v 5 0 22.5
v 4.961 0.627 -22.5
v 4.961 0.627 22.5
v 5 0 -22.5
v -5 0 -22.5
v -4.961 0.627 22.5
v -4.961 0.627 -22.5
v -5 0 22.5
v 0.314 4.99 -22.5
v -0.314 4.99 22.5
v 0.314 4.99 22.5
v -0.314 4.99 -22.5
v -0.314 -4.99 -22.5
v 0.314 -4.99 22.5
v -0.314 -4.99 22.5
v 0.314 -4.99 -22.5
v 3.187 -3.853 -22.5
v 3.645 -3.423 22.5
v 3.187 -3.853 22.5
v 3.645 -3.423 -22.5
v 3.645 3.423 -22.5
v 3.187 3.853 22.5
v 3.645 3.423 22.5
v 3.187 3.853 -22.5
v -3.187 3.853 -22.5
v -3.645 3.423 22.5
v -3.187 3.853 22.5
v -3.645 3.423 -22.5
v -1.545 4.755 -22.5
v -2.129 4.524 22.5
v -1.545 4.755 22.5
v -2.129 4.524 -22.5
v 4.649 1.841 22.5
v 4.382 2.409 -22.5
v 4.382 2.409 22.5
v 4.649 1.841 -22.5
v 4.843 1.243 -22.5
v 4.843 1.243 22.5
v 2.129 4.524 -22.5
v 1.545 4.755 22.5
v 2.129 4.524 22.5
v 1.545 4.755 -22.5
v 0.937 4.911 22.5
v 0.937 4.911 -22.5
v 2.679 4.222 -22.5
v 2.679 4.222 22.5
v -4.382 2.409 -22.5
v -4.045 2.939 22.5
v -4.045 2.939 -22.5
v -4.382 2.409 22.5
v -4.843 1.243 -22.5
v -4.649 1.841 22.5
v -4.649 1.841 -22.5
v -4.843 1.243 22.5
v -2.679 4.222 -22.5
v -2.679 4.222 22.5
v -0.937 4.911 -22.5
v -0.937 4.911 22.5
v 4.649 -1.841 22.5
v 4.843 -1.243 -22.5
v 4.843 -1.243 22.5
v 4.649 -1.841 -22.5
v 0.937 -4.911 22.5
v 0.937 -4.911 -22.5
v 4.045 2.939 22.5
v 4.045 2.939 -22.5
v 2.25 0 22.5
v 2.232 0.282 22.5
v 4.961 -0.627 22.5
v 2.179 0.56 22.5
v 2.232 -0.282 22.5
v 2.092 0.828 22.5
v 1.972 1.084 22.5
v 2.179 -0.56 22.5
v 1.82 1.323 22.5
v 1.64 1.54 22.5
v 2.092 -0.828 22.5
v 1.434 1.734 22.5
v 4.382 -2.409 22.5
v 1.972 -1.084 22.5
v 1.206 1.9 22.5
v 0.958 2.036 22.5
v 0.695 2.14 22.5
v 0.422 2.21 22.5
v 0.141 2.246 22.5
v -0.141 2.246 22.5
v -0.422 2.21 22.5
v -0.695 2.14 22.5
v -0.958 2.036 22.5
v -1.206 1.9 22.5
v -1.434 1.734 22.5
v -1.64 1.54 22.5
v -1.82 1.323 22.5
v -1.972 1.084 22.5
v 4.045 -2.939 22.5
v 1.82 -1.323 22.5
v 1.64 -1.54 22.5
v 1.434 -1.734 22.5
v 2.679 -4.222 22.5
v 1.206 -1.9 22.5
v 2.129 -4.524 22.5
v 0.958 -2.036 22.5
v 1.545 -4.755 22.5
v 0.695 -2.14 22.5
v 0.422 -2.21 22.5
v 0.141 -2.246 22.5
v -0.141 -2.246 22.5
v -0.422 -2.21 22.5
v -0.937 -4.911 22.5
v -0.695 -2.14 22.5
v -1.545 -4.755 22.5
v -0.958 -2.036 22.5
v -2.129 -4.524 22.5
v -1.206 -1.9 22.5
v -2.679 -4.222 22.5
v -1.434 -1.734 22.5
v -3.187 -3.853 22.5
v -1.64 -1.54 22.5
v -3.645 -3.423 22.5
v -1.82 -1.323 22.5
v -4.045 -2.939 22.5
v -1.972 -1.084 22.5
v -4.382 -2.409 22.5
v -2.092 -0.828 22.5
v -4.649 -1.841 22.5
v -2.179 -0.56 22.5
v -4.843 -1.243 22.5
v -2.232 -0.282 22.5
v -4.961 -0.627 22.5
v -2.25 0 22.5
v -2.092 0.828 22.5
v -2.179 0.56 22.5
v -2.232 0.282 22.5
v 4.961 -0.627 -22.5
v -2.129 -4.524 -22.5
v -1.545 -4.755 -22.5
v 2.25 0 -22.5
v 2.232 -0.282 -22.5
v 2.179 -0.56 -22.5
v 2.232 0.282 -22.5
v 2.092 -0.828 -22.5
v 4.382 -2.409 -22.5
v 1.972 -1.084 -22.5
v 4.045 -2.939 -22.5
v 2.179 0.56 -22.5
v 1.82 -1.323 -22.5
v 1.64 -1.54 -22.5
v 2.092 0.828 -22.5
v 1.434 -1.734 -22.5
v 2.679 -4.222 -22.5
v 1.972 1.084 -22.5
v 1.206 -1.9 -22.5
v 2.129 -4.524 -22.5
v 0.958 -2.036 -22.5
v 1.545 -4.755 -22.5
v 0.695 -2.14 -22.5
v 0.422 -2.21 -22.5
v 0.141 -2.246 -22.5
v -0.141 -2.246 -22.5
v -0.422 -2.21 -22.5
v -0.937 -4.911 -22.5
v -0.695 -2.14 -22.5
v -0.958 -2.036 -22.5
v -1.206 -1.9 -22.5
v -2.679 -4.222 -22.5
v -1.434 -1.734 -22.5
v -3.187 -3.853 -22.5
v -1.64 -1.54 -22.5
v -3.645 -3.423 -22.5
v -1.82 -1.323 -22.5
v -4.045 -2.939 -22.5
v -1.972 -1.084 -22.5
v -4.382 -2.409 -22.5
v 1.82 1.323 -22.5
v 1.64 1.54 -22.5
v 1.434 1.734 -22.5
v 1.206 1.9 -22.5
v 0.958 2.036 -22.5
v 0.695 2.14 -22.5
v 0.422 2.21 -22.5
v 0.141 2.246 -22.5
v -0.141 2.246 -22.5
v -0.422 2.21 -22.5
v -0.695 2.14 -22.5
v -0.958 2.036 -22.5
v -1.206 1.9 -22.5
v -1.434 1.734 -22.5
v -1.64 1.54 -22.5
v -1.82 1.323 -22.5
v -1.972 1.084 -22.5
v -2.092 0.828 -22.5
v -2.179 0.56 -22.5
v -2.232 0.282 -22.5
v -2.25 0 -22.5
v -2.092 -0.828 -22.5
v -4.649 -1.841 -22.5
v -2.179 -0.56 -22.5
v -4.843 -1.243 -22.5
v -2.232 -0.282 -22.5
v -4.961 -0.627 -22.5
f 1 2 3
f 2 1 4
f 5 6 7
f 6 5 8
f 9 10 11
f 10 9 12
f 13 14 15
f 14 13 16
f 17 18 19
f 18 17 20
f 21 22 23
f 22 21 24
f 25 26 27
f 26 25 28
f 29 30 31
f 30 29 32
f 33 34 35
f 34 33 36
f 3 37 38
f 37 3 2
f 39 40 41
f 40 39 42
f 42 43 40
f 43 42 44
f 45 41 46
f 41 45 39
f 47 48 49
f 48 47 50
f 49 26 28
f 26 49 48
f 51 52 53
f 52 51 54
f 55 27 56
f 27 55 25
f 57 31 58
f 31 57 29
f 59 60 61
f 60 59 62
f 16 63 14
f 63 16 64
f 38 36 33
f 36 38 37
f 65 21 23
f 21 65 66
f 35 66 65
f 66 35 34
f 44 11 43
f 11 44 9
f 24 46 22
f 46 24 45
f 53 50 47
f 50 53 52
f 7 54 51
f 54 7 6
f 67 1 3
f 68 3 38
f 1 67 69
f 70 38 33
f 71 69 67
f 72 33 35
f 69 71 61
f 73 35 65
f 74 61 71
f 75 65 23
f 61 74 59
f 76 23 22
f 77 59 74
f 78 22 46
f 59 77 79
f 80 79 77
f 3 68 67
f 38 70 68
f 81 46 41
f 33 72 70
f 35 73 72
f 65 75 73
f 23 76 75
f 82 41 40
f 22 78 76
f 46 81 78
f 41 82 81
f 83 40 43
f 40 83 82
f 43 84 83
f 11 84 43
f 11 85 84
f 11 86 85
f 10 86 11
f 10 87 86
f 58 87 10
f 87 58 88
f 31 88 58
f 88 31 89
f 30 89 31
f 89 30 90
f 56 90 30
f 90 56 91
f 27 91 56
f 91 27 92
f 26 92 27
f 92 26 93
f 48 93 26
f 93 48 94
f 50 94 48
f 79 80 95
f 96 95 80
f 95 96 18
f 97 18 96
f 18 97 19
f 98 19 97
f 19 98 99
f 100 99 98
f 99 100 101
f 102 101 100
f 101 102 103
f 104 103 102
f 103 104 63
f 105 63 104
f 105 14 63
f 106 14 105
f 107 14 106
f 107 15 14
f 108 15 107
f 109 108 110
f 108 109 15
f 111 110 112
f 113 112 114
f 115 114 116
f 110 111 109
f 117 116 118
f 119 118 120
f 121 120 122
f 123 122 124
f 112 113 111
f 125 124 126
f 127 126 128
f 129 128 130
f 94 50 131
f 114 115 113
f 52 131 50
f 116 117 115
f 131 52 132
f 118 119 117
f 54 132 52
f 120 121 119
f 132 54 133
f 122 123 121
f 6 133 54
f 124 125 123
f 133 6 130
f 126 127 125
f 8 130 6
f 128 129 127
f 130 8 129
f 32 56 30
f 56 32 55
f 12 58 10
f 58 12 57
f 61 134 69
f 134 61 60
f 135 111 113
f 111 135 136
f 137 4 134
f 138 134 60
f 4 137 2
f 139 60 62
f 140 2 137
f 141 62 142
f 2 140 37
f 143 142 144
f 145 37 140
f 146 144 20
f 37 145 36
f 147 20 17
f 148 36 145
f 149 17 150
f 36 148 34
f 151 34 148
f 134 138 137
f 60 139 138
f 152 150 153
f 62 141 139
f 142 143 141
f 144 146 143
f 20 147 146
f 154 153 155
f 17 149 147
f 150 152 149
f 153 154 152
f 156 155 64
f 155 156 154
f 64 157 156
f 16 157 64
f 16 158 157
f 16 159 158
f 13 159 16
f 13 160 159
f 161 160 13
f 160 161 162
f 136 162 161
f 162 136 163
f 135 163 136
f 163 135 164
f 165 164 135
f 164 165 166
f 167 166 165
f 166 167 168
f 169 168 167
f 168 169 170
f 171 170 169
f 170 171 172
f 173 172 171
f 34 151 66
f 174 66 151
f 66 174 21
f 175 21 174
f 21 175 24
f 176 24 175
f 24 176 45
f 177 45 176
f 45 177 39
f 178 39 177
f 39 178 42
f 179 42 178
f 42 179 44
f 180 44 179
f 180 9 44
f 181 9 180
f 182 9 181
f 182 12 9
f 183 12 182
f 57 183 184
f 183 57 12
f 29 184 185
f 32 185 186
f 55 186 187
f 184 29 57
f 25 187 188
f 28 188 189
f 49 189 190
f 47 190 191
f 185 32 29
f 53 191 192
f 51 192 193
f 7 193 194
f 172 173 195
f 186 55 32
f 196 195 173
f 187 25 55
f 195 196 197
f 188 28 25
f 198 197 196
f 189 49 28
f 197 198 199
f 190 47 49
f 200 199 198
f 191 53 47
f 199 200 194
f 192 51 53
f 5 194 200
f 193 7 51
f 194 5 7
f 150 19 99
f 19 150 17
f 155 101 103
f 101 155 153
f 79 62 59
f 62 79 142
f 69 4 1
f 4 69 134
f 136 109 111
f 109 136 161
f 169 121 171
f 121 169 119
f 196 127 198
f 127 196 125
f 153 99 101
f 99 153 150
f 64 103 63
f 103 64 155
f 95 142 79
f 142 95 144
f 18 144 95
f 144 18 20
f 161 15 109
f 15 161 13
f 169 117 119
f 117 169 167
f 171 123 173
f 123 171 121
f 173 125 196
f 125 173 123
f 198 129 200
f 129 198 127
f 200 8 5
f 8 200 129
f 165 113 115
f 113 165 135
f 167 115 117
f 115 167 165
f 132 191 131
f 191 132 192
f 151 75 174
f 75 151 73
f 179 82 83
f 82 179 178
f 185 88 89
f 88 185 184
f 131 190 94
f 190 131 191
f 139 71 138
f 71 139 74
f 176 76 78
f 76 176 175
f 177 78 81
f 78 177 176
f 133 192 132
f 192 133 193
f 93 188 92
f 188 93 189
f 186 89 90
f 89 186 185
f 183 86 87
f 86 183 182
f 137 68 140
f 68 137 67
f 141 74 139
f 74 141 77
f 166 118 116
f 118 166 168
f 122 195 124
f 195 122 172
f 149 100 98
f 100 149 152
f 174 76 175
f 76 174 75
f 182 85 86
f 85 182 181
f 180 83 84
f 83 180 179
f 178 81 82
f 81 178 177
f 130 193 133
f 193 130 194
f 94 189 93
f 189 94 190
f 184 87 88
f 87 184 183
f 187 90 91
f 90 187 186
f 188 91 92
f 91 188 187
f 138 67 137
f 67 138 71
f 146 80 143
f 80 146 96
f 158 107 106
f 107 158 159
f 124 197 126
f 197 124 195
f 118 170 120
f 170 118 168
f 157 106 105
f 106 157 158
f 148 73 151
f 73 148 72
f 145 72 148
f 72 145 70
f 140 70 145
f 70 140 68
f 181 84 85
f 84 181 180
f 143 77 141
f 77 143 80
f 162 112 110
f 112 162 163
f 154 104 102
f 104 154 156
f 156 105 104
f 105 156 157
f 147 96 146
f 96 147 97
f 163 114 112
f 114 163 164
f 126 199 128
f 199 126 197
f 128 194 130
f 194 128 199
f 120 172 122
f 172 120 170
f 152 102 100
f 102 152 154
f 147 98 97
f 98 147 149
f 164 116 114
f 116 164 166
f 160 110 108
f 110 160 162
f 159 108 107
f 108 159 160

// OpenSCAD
$fn = 50;


difference() {
	union() {
		translate(v = [0, 0, -22.5000000000]) {
			cylinder(h = 45, r = 5.0000000000);
		}
	}
	union() {
		translate(v = [0, 0, -100.0000000000]) {
			cylinder(h = 200, r = 2.2500000000);
		}
	}
}
